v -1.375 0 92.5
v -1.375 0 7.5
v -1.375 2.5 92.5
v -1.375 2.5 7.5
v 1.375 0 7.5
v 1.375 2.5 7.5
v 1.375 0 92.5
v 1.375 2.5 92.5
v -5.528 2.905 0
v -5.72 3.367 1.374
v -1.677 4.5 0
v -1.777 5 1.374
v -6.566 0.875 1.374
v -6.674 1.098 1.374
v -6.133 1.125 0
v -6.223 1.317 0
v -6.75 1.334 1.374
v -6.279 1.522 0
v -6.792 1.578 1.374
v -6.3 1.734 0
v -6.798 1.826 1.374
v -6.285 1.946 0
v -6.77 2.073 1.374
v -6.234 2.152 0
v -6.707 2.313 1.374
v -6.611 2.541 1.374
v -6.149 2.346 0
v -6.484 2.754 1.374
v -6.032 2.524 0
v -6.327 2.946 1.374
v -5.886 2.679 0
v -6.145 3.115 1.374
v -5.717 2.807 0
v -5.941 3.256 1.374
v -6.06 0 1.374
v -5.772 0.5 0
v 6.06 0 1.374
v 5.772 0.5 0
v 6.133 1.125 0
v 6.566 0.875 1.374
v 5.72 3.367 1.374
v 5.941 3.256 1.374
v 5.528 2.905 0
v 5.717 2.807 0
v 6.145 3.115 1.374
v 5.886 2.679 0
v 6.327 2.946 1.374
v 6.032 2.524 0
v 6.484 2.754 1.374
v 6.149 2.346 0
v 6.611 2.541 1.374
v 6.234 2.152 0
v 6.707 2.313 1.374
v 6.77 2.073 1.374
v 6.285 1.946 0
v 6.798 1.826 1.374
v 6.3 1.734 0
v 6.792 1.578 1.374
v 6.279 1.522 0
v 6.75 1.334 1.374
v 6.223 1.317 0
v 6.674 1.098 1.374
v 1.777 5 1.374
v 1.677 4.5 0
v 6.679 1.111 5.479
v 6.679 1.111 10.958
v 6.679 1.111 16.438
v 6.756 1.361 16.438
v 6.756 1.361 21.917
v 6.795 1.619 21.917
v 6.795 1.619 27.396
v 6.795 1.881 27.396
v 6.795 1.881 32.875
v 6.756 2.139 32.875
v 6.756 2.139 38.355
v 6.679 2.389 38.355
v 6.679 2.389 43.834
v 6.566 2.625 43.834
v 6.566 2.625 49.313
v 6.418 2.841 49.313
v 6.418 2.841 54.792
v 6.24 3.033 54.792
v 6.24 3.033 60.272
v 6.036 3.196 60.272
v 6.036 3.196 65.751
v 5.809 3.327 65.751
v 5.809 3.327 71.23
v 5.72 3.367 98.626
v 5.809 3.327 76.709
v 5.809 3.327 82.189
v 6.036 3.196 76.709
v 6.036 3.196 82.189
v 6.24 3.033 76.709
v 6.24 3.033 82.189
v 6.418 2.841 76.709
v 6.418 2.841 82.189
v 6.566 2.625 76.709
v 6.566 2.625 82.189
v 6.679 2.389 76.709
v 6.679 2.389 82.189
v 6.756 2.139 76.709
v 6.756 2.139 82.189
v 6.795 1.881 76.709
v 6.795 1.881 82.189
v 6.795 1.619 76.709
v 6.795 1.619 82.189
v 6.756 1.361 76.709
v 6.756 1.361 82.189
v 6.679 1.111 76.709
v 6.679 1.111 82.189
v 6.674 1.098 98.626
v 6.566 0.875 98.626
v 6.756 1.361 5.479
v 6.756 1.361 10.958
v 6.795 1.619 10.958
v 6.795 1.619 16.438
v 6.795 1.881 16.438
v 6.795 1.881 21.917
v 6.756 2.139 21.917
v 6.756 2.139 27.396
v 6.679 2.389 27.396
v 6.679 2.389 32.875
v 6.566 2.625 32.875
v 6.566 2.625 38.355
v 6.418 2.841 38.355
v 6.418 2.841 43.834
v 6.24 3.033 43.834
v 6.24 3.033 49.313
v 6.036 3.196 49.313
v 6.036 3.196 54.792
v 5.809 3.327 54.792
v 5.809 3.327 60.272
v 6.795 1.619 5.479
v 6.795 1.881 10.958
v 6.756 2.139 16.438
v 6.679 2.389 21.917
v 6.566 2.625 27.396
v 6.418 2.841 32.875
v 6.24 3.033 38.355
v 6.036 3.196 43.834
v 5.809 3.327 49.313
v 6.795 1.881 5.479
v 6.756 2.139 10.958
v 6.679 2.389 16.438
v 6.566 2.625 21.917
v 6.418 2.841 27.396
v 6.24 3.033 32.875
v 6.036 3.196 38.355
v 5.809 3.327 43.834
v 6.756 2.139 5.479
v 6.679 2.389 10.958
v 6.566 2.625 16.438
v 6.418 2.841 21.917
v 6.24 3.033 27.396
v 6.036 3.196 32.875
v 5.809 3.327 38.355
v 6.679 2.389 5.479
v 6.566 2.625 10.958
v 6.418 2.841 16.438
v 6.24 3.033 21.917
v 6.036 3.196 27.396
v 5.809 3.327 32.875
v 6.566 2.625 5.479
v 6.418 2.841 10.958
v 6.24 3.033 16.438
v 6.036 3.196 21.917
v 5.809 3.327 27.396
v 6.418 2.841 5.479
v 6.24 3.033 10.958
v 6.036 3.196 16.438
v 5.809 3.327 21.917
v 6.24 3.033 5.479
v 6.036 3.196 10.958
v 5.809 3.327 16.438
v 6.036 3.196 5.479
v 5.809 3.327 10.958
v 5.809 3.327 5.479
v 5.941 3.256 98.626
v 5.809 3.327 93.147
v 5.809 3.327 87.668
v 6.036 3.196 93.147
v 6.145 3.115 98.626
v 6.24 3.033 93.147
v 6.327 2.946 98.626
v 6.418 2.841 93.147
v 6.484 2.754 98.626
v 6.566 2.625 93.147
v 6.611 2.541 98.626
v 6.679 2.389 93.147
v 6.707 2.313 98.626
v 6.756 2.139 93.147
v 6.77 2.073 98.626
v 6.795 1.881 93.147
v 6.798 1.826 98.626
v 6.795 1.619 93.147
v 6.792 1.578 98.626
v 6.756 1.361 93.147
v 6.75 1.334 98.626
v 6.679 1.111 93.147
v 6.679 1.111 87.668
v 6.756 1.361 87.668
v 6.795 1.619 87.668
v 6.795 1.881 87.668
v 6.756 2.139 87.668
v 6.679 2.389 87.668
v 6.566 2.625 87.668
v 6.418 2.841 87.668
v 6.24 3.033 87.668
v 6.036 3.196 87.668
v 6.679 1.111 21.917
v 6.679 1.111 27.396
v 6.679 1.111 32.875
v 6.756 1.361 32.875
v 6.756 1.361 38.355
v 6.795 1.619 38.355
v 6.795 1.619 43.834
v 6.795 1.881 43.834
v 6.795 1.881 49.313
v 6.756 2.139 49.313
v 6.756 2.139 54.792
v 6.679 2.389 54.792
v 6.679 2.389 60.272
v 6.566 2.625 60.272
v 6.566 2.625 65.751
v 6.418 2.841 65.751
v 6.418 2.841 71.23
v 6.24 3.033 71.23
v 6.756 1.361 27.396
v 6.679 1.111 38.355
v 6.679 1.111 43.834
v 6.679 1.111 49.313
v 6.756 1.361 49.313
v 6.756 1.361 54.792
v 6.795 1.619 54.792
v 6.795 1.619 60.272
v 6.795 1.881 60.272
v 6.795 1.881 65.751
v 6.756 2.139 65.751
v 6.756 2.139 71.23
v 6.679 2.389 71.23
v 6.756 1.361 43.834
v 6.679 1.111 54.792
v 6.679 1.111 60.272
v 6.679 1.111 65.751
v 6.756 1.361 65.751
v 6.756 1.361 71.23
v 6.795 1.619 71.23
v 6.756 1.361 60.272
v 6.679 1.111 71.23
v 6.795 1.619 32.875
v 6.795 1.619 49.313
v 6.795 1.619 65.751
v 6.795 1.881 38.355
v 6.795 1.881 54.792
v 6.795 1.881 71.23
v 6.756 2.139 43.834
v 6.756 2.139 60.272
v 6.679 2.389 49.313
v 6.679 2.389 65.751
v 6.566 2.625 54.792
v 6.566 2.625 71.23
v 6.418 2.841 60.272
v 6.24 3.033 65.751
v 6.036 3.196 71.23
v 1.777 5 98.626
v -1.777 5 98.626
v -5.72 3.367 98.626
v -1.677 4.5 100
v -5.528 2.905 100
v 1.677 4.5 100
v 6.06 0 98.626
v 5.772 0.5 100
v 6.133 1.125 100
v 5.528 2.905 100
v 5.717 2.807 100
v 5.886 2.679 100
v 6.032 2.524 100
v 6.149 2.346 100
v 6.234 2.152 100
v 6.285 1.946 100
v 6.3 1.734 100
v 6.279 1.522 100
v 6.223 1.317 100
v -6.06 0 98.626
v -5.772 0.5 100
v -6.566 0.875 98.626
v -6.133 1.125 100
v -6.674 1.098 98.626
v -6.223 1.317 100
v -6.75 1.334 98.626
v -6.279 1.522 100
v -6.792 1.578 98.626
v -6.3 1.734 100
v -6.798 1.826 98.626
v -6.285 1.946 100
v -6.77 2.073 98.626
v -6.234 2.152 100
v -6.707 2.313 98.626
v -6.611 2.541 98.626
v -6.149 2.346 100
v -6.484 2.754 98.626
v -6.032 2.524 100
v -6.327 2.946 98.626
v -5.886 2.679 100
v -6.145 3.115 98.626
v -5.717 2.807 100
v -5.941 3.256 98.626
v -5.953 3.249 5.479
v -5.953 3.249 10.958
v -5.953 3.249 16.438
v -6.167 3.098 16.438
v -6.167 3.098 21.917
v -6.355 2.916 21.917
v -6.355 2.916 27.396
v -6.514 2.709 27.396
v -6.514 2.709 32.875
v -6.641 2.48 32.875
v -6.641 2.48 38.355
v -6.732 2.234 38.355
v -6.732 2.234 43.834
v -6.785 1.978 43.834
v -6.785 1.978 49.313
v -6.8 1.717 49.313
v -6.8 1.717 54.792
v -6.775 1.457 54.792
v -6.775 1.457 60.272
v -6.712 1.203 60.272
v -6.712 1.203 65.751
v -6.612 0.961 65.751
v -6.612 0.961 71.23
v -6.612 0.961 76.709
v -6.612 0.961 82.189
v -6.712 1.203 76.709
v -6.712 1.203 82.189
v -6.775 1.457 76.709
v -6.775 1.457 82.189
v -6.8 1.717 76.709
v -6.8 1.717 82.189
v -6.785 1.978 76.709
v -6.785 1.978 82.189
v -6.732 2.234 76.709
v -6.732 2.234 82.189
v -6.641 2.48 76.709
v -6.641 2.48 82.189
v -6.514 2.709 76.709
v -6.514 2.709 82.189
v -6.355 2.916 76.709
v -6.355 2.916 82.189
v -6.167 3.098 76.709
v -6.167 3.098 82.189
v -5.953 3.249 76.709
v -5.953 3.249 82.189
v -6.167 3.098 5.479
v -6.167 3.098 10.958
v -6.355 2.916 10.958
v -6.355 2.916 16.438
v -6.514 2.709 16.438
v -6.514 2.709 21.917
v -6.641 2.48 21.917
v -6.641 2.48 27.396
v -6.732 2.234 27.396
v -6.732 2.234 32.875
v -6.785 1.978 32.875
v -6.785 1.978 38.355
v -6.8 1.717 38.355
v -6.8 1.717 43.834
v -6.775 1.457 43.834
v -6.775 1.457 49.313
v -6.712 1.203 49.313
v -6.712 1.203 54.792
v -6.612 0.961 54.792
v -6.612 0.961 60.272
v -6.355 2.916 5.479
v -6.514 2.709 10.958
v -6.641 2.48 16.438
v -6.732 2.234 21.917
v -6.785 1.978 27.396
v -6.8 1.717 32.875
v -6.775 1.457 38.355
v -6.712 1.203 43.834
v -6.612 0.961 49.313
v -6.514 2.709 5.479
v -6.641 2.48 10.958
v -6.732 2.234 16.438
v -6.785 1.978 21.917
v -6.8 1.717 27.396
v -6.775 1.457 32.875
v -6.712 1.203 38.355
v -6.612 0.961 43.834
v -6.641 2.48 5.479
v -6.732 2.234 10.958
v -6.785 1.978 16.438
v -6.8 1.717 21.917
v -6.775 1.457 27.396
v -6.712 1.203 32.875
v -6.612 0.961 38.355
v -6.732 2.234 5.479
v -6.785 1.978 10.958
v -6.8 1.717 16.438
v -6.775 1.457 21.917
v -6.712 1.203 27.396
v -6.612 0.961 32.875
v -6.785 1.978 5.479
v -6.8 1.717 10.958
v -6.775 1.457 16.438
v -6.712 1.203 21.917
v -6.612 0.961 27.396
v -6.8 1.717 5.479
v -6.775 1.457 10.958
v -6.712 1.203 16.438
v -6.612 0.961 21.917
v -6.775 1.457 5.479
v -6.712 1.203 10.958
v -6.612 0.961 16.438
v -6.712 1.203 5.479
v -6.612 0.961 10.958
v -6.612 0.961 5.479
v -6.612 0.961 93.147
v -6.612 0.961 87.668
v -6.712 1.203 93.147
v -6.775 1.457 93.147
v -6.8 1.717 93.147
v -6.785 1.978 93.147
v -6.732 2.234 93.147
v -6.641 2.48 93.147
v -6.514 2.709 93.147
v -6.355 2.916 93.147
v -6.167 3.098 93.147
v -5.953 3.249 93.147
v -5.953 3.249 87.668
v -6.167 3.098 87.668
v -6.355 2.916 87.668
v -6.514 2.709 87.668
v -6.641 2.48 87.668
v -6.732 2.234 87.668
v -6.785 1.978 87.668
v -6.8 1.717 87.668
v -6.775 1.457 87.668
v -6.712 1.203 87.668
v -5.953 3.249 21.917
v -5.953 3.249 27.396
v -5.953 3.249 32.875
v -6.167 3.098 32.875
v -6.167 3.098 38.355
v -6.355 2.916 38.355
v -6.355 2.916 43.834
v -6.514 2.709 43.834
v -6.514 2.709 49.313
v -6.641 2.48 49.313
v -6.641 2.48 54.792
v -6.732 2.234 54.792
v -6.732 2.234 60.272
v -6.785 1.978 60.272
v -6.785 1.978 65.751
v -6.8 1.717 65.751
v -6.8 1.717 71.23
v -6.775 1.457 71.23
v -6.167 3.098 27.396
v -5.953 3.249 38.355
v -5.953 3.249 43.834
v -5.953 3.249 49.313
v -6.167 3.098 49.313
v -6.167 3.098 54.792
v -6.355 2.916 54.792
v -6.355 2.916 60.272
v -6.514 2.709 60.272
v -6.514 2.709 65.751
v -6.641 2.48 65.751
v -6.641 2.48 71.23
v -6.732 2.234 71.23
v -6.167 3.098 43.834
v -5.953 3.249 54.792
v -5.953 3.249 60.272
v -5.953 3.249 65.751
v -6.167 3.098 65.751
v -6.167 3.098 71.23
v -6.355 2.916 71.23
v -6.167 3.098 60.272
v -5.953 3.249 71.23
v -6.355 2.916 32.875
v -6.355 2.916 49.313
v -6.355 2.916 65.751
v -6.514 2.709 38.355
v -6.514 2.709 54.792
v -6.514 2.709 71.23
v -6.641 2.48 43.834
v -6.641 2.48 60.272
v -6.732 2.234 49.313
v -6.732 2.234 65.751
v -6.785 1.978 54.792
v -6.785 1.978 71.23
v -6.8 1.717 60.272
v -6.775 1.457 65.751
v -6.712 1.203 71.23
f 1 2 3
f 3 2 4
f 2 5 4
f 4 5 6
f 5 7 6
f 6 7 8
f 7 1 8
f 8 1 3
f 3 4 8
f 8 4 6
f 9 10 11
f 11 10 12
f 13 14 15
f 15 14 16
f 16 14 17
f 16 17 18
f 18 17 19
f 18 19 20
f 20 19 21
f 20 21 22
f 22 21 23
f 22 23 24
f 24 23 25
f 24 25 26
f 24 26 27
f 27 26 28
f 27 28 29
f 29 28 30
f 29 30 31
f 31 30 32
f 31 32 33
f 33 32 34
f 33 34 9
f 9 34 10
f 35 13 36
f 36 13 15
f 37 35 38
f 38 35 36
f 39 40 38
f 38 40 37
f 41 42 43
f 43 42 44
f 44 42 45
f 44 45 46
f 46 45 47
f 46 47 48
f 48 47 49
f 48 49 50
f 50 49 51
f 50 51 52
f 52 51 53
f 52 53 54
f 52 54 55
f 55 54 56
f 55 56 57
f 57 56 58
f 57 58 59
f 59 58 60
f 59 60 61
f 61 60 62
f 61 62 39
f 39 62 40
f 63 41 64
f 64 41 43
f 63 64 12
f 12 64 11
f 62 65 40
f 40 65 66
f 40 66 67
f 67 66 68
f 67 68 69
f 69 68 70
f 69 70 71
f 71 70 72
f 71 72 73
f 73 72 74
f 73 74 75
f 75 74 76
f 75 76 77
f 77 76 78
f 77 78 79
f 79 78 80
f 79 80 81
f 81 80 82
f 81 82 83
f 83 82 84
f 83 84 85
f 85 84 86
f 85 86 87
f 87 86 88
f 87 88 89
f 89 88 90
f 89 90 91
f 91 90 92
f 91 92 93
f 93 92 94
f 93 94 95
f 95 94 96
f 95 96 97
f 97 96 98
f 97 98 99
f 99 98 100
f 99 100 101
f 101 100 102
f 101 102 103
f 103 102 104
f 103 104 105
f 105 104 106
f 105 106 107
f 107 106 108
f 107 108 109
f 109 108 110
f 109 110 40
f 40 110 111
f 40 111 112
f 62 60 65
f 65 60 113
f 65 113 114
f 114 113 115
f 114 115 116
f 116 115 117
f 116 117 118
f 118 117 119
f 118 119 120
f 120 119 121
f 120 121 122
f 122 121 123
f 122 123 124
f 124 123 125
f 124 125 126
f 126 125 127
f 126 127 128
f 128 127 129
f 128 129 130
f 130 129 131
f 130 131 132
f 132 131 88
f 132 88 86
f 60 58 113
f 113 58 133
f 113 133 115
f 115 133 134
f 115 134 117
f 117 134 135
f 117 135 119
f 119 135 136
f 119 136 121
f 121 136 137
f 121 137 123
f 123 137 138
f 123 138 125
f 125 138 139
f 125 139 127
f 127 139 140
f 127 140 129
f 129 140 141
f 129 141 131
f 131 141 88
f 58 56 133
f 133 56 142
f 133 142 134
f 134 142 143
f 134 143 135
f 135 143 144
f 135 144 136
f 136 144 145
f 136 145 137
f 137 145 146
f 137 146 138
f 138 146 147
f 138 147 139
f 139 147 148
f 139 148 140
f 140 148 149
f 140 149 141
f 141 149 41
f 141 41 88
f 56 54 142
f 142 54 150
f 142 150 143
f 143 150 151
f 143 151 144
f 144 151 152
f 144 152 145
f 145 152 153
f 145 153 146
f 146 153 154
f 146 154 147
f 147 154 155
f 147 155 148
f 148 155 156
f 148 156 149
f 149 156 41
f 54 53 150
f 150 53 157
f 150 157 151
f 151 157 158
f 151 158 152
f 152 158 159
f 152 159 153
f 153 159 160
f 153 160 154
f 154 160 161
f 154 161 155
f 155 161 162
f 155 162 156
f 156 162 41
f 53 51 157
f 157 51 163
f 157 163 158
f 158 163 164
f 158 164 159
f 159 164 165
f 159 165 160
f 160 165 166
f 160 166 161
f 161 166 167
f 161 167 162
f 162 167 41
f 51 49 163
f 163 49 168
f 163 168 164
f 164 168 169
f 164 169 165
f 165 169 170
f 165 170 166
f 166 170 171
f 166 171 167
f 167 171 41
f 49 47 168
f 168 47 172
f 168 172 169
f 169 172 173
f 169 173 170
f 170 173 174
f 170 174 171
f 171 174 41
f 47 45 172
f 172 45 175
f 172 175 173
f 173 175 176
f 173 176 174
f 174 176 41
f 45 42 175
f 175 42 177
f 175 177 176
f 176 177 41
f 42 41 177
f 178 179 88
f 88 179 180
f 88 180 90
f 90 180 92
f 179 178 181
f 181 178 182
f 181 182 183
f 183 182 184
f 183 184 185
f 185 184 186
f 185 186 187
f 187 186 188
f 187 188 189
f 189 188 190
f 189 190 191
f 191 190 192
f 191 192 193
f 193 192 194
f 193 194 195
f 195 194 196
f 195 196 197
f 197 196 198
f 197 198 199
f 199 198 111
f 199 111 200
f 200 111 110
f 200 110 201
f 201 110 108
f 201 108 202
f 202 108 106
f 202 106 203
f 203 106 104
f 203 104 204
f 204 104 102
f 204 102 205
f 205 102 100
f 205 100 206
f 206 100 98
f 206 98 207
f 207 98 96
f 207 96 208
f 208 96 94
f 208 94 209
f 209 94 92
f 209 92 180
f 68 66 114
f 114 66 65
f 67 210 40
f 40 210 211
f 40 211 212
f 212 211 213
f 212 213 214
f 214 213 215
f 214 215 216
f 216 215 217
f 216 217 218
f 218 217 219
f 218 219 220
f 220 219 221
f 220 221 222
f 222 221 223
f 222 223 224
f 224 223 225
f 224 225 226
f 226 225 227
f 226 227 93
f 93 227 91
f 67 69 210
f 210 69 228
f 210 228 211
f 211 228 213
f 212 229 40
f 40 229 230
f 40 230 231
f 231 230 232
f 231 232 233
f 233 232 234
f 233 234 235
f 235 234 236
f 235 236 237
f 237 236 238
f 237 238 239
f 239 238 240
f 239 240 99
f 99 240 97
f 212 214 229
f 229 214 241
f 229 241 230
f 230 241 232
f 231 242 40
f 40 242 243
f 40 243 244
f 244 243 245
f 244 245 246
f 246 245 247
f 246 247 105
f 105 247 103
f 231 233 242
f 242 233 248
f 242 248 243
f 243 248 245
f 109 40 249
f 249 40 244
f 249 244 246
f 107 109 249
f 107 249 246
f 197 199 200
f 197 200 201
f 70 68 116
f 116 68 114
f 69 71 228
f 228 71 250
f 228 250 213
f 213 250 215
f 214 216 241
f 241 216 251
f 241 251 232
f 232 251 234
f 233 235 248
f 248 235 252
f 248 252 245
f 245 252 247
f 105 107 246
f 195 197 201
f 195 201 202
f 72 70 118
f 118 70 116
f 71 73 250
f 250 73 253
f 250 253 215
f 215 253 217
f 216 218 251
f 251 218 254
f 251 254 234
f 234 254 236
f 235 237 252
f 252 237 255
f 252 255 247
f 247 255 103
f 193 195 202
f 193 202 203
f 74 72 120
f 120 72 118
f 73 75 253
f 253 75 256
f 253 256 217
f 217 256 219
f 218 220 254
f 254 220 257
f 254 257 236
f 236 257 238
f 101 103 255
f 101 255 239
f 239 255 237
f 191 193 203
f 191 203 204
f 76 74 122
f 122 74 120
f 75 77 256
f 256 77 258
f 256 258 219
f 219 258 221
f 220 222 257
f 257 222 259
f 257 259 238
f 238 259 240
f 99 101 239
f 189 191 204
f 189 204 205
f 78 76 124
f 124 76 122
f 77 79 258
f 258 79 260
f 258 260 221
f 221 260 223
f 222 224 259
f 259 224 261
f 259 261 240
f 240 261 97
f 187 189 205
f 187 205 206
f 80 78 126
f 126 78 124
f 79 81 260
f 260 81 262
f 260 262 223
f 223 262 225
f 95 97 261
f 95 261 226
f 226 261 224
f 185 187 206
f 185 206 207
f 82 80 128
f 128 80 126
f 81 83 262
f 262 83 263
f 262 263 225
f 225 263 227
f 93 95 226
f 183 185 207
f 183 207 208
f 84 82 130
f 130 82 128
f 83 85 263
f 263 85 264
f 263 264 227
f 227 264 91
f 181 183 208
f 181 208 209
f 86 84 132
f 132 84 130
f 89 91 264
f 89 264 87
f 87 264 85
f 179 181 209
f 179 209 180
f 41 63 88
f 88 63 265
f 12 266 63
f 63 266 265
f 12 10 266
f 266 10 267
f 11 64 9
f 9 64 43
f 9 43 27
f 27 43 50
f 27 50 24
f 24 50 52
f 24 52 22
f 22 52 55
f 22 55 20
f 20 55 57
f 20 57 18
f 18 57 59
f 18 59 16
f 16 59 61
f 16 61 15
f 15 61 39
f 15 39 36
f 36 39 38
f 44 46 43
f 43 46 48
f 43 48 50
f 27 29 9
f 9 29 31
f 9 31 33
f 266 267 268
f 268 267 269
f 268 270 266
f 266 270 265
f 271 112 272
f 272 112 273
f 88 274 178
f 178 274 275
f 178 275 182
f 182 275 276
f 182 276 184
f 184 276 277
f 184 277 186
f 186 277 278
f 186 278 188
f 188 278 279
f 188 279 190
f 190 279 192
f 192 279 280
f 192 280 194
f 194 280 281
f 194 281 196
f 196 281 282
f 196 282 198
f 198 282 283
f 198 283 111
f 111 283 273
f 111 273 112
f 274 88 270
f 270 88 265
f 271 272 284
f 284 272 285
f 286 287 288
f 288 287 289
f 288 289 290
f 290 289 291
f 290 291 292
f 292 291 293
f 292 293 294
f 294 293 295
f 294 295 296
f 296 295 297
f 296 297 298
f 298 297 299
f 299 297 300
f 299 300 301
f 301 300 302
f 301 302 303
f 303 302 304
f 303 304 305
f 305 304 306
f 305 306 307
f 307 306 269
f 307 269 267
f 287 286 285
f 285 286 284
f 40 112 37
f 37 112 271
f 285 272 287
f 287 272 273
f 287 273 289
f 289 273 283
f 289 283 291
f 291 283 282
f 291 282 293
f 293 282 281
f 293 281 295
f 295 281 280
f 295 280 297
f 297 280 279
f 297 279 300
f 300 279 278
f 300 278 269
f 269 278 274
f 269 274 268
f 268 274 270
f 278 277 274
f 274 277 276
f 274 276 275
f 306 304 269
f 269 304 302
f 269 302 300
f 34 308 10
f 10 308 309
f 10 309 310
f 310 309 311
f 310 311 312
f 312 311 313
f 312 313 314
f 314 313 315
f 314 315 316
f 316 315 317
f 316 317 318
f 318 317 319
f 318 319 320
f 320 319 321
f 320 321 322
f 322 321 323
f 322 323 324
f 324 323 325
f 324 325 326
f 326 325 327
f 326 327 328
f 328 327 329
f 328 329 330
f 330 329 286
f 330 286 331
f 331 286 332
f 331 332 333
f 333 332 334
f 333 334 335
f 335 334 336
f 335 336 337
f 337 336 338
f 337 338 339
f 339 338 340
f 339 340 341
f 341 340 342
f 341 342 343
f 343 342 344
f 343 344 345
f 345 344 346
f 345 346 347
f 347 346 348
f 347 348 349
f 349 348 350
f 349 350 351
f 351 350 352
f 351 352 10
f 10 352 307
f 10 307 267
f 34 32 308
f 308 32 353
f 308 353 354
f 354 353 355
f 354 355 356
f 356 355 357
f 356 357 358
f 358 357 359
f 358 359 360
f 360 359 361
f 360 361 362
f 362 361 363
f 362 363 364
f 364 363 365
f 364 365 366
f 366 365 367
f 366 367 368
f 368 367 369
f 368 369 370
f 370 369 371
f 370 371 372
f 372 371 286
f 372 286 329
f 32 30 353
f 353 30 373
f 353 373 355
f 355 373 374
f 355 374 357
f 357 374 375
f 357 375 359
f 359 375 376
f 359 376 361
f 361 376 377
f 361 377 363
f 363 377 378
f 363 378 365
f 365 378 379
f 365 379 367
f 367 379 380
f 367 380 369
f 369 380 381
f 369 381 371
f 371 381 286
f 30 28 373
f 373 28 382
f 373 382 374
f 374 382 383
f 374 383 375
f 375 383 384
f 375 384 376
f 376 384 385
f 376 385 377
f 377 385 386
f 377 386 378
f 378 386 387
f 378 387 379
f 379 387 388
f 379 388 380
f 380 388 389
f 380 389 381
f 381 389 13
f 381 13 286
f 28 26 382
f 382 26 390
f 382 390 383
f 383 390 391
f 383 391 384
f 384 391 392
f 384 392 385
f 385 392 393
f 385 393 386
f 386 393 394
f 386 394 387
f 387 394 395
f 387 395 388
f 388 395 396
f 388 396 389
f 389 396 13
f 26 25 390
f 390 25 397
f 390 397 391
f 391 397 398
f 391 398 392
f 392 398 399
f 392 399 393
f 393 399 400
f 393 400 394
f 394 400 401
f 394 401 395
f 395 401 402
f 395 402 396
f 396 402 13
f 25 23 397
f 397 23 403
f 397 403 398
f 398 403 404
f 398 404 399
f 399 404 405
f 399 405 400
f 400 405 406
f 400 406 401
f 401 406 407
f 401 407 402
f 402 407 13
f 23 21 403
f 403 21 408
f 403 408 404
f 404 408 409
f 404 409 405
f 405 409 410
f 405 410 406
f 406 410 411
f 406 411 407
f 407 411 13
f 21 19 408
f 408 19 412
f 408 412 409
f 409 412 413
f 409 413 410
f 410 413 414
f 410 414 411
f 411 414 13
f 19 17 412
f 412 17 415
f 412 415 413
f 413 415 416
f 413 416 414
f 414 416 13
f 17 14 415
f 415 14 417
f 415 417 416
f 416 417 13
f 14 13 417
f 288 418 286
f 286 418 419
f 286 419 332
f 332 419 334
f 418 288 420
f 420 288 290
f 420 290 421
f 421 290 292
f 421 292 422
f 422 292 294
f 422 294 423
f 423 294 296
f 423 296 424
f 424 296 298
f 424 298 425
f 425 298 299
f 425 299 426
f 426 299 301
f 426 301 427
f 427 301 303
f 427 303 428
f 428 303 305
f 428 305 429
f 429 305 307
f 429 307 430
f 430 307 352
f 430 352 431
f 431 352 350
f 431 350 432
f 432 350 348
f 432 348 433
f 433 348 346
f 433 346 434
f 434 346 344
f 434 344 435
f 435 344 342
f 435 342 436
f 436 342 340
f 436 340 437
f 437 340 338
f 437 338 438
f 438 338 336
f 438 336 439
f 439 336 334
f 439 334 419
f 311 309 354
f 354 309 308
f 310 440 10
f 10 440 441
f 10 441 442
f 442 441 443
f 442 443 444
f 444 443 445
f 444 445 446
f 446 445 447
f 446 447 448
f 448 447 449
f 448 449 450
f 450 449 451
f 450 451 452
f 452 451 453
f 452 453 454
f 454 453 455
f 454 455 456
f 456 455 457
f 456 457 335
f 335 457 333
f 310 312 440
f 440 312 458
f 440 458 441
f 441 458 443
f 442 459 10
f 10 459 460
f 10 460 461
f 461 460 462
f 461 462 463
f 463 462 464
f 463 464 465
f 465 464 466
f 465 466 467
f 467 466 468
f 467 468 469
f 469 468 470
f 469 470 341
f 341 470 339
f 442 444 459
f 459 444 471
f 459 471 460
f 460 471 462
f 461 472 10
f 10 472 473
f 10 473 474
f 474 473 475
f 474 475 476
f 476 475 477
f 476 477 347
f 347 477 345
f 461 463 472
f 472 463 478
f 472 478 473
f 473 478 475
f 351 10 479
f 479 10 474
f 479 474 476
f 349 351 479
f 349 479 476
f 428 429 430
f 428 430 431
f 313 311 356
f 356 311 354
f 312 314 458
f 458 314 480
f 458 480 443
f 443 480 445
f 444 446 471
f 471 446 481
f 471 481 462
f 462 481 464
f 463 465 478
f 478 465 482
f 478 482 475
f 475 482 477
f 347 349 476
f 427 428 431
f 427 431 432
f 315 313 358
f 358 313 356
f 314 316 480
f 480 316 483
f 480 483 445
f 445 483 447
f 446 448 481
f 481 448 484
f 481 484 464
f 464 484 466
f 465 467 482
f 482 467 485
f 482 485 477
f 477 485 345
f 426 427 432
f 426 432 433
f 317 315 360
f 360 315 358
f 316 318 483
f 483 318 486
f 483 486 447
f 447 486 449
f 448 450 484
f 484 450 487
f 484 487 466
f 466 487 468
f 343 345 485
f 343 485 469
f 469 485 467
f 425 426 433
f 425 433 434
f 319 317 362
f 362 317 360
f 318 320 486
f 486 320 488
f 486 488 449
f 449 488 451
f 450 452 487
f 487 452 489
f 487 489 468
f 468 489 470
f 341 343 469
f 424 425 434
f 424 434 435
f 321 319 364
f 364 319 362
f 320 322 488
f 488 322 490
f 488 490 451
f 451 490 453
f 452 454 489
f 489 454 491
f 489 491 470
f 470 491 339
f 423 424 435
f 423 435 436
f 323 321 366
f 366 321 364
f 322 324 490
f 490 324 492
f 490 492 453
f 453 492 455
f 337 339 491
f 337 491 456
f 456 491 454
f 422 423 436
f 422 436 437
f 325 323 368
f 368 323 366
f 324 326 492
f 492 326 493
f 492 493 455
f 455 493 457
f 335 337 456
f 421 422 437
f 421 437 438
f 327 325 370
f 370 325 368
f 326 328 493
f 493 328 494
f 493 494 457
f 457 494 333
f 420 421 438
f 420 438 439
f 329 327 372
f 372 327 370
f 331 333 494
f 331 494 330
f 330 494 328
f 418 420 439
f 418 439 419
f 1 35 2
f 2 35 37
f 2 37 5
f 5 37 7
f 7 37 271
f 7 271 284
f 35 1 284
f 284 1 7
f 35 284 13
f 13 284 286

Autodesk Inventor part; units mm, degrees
ref_plane "YZ Plane" through (0, 0, 0) normal (1, 0, 0) x (0, 1, 0)
ref_plane "XZ Plane" through (0, 0, 0) normal (0, 1, 0) x (-1, 0, 0)
ref_plane "XY Plane" through (0, 0, 0) normal (0, 0, 1) x (1, 0, 0)
sketch "Náčrt1" plane through (0, 0, 0) normal (0, 0, 1) x (1, 0, 0)
  line L0 (-5.05, 0) -> (5.05, 0)
  line L1 (0, -1.329763) -> (0, 6.054961)
  line L2 (-9.941711, 0) -> (9.941711, 0)
  line L3 (-5.719696, 3.366789) -> (-1.776776, 5)
  line L4 (-1.776776, 5) -> (1.776776, 5)
  line L5 (1.776776, 5) -> (5.719696, 3.366789)
  arc A0 (-5.719696, 3.366789) -> (-5.05, 0) centre (-5.05, 1.75) ccw
  arc A1 (5.05, 0) -> (5.719696, 3.366789) centre (5.05, 1.75) ccw
  line L6 (6.565544, 0.875) -> (6.060363, 0)
  line L7 (6.060363, 0) -> (5.05, 0)
  arc A2 (5.05, 0) -> (6.565544, 0.875) centre (5.05, 1.75) ccw
  line L8 (-5.05, 0) -> (-6.060363, 0)
  line L9 (-6.060363, 0) -> (-6.565544, 0.875)
  arc A3 (-6.565544, 0.875) -> (-5.05, 0) centre (-5.05, 1.75) ccw
  point P0 (0, 0)
  dimension "d0" = 135
  dimension "d1" = 1.75
  dimension "d2" = 13.6
  dimension "d3" = 5
  dimension "d12" = 60
extrude "Vysunutí1" add sketch "Náčrt1" along normal blind 100
chamfer "Zkosení1" distance 0.5 angle 70 6 edges at (3.7482, 4.1834, 100) (6.7071, 2.3125, 100) (0, 0, 100) (-6.7071, 2.3125, 100) (-3.7482, 4.1834, 100) (0, 5, 100) measured on face at (0.5923, 1.6667, 100)
chamfer "Zkosení2" distance 0.5 angle 70 6 edges at (0, 0, 0) (6.7071, 2.3125, 0) (3.7482, 4.1834, 0) (-6.7071, 2.3125, 0) (-3.7482, 4.1834, 0) (0, 5, 0) measured on face at (0.5923, 1.6667, 0)
sketch "Náčrt2" plane through (-6.060363, 0, 98.626261) normal (0, -1, 0) x (1, 0, 0)
  line L0 (6.060363, -118.626261) -> (6.060363, 21.373739)
  line L1 (-3.459637, -98.626261) -> (15.580363, -98.626261)
  line L2 (12.120726, -97.252523) -> (0, -97.252523)
  line L3 (12.120726, -97.252523) -> (12.120726, 0)
  line L4 (0, 0) -> (12.120726, 0)
  line L5 (0, -97.252523) -> (0, 0)
  line L6 (7.435363, -6.126261) -> (4.685363, -6.126261)
  line L7 (4.685363, -6.126261) -> (4.685363, -91.126261)
  line L8 (4.685363, -91.126261) -> (7.435363, -91.126261)
  line L9 (7.435363, -91.126261) -> (7.435363, -6.126261)
  line L10 (11.832051, 1.373739) -> (0.288675, 1.373739)
  point P0 (6.060363, -98.626261)
  dimension "d13" = 2.75
  dimension "d14" = 7.5
  dimension "d15" = 7.5
extrude "Vysunutí2" cut sketch "Náčrt2" against normal blind 2.5 contours L8 L7 L6 L0 | L0 L6 L9 L8
equation "\"d9\" = d6"
equation "\"d11\" = d8"
equation "\"d15\" = d14"
equation "\"d6\" = 0.5"
equation "\"d8\" = 70deg"
